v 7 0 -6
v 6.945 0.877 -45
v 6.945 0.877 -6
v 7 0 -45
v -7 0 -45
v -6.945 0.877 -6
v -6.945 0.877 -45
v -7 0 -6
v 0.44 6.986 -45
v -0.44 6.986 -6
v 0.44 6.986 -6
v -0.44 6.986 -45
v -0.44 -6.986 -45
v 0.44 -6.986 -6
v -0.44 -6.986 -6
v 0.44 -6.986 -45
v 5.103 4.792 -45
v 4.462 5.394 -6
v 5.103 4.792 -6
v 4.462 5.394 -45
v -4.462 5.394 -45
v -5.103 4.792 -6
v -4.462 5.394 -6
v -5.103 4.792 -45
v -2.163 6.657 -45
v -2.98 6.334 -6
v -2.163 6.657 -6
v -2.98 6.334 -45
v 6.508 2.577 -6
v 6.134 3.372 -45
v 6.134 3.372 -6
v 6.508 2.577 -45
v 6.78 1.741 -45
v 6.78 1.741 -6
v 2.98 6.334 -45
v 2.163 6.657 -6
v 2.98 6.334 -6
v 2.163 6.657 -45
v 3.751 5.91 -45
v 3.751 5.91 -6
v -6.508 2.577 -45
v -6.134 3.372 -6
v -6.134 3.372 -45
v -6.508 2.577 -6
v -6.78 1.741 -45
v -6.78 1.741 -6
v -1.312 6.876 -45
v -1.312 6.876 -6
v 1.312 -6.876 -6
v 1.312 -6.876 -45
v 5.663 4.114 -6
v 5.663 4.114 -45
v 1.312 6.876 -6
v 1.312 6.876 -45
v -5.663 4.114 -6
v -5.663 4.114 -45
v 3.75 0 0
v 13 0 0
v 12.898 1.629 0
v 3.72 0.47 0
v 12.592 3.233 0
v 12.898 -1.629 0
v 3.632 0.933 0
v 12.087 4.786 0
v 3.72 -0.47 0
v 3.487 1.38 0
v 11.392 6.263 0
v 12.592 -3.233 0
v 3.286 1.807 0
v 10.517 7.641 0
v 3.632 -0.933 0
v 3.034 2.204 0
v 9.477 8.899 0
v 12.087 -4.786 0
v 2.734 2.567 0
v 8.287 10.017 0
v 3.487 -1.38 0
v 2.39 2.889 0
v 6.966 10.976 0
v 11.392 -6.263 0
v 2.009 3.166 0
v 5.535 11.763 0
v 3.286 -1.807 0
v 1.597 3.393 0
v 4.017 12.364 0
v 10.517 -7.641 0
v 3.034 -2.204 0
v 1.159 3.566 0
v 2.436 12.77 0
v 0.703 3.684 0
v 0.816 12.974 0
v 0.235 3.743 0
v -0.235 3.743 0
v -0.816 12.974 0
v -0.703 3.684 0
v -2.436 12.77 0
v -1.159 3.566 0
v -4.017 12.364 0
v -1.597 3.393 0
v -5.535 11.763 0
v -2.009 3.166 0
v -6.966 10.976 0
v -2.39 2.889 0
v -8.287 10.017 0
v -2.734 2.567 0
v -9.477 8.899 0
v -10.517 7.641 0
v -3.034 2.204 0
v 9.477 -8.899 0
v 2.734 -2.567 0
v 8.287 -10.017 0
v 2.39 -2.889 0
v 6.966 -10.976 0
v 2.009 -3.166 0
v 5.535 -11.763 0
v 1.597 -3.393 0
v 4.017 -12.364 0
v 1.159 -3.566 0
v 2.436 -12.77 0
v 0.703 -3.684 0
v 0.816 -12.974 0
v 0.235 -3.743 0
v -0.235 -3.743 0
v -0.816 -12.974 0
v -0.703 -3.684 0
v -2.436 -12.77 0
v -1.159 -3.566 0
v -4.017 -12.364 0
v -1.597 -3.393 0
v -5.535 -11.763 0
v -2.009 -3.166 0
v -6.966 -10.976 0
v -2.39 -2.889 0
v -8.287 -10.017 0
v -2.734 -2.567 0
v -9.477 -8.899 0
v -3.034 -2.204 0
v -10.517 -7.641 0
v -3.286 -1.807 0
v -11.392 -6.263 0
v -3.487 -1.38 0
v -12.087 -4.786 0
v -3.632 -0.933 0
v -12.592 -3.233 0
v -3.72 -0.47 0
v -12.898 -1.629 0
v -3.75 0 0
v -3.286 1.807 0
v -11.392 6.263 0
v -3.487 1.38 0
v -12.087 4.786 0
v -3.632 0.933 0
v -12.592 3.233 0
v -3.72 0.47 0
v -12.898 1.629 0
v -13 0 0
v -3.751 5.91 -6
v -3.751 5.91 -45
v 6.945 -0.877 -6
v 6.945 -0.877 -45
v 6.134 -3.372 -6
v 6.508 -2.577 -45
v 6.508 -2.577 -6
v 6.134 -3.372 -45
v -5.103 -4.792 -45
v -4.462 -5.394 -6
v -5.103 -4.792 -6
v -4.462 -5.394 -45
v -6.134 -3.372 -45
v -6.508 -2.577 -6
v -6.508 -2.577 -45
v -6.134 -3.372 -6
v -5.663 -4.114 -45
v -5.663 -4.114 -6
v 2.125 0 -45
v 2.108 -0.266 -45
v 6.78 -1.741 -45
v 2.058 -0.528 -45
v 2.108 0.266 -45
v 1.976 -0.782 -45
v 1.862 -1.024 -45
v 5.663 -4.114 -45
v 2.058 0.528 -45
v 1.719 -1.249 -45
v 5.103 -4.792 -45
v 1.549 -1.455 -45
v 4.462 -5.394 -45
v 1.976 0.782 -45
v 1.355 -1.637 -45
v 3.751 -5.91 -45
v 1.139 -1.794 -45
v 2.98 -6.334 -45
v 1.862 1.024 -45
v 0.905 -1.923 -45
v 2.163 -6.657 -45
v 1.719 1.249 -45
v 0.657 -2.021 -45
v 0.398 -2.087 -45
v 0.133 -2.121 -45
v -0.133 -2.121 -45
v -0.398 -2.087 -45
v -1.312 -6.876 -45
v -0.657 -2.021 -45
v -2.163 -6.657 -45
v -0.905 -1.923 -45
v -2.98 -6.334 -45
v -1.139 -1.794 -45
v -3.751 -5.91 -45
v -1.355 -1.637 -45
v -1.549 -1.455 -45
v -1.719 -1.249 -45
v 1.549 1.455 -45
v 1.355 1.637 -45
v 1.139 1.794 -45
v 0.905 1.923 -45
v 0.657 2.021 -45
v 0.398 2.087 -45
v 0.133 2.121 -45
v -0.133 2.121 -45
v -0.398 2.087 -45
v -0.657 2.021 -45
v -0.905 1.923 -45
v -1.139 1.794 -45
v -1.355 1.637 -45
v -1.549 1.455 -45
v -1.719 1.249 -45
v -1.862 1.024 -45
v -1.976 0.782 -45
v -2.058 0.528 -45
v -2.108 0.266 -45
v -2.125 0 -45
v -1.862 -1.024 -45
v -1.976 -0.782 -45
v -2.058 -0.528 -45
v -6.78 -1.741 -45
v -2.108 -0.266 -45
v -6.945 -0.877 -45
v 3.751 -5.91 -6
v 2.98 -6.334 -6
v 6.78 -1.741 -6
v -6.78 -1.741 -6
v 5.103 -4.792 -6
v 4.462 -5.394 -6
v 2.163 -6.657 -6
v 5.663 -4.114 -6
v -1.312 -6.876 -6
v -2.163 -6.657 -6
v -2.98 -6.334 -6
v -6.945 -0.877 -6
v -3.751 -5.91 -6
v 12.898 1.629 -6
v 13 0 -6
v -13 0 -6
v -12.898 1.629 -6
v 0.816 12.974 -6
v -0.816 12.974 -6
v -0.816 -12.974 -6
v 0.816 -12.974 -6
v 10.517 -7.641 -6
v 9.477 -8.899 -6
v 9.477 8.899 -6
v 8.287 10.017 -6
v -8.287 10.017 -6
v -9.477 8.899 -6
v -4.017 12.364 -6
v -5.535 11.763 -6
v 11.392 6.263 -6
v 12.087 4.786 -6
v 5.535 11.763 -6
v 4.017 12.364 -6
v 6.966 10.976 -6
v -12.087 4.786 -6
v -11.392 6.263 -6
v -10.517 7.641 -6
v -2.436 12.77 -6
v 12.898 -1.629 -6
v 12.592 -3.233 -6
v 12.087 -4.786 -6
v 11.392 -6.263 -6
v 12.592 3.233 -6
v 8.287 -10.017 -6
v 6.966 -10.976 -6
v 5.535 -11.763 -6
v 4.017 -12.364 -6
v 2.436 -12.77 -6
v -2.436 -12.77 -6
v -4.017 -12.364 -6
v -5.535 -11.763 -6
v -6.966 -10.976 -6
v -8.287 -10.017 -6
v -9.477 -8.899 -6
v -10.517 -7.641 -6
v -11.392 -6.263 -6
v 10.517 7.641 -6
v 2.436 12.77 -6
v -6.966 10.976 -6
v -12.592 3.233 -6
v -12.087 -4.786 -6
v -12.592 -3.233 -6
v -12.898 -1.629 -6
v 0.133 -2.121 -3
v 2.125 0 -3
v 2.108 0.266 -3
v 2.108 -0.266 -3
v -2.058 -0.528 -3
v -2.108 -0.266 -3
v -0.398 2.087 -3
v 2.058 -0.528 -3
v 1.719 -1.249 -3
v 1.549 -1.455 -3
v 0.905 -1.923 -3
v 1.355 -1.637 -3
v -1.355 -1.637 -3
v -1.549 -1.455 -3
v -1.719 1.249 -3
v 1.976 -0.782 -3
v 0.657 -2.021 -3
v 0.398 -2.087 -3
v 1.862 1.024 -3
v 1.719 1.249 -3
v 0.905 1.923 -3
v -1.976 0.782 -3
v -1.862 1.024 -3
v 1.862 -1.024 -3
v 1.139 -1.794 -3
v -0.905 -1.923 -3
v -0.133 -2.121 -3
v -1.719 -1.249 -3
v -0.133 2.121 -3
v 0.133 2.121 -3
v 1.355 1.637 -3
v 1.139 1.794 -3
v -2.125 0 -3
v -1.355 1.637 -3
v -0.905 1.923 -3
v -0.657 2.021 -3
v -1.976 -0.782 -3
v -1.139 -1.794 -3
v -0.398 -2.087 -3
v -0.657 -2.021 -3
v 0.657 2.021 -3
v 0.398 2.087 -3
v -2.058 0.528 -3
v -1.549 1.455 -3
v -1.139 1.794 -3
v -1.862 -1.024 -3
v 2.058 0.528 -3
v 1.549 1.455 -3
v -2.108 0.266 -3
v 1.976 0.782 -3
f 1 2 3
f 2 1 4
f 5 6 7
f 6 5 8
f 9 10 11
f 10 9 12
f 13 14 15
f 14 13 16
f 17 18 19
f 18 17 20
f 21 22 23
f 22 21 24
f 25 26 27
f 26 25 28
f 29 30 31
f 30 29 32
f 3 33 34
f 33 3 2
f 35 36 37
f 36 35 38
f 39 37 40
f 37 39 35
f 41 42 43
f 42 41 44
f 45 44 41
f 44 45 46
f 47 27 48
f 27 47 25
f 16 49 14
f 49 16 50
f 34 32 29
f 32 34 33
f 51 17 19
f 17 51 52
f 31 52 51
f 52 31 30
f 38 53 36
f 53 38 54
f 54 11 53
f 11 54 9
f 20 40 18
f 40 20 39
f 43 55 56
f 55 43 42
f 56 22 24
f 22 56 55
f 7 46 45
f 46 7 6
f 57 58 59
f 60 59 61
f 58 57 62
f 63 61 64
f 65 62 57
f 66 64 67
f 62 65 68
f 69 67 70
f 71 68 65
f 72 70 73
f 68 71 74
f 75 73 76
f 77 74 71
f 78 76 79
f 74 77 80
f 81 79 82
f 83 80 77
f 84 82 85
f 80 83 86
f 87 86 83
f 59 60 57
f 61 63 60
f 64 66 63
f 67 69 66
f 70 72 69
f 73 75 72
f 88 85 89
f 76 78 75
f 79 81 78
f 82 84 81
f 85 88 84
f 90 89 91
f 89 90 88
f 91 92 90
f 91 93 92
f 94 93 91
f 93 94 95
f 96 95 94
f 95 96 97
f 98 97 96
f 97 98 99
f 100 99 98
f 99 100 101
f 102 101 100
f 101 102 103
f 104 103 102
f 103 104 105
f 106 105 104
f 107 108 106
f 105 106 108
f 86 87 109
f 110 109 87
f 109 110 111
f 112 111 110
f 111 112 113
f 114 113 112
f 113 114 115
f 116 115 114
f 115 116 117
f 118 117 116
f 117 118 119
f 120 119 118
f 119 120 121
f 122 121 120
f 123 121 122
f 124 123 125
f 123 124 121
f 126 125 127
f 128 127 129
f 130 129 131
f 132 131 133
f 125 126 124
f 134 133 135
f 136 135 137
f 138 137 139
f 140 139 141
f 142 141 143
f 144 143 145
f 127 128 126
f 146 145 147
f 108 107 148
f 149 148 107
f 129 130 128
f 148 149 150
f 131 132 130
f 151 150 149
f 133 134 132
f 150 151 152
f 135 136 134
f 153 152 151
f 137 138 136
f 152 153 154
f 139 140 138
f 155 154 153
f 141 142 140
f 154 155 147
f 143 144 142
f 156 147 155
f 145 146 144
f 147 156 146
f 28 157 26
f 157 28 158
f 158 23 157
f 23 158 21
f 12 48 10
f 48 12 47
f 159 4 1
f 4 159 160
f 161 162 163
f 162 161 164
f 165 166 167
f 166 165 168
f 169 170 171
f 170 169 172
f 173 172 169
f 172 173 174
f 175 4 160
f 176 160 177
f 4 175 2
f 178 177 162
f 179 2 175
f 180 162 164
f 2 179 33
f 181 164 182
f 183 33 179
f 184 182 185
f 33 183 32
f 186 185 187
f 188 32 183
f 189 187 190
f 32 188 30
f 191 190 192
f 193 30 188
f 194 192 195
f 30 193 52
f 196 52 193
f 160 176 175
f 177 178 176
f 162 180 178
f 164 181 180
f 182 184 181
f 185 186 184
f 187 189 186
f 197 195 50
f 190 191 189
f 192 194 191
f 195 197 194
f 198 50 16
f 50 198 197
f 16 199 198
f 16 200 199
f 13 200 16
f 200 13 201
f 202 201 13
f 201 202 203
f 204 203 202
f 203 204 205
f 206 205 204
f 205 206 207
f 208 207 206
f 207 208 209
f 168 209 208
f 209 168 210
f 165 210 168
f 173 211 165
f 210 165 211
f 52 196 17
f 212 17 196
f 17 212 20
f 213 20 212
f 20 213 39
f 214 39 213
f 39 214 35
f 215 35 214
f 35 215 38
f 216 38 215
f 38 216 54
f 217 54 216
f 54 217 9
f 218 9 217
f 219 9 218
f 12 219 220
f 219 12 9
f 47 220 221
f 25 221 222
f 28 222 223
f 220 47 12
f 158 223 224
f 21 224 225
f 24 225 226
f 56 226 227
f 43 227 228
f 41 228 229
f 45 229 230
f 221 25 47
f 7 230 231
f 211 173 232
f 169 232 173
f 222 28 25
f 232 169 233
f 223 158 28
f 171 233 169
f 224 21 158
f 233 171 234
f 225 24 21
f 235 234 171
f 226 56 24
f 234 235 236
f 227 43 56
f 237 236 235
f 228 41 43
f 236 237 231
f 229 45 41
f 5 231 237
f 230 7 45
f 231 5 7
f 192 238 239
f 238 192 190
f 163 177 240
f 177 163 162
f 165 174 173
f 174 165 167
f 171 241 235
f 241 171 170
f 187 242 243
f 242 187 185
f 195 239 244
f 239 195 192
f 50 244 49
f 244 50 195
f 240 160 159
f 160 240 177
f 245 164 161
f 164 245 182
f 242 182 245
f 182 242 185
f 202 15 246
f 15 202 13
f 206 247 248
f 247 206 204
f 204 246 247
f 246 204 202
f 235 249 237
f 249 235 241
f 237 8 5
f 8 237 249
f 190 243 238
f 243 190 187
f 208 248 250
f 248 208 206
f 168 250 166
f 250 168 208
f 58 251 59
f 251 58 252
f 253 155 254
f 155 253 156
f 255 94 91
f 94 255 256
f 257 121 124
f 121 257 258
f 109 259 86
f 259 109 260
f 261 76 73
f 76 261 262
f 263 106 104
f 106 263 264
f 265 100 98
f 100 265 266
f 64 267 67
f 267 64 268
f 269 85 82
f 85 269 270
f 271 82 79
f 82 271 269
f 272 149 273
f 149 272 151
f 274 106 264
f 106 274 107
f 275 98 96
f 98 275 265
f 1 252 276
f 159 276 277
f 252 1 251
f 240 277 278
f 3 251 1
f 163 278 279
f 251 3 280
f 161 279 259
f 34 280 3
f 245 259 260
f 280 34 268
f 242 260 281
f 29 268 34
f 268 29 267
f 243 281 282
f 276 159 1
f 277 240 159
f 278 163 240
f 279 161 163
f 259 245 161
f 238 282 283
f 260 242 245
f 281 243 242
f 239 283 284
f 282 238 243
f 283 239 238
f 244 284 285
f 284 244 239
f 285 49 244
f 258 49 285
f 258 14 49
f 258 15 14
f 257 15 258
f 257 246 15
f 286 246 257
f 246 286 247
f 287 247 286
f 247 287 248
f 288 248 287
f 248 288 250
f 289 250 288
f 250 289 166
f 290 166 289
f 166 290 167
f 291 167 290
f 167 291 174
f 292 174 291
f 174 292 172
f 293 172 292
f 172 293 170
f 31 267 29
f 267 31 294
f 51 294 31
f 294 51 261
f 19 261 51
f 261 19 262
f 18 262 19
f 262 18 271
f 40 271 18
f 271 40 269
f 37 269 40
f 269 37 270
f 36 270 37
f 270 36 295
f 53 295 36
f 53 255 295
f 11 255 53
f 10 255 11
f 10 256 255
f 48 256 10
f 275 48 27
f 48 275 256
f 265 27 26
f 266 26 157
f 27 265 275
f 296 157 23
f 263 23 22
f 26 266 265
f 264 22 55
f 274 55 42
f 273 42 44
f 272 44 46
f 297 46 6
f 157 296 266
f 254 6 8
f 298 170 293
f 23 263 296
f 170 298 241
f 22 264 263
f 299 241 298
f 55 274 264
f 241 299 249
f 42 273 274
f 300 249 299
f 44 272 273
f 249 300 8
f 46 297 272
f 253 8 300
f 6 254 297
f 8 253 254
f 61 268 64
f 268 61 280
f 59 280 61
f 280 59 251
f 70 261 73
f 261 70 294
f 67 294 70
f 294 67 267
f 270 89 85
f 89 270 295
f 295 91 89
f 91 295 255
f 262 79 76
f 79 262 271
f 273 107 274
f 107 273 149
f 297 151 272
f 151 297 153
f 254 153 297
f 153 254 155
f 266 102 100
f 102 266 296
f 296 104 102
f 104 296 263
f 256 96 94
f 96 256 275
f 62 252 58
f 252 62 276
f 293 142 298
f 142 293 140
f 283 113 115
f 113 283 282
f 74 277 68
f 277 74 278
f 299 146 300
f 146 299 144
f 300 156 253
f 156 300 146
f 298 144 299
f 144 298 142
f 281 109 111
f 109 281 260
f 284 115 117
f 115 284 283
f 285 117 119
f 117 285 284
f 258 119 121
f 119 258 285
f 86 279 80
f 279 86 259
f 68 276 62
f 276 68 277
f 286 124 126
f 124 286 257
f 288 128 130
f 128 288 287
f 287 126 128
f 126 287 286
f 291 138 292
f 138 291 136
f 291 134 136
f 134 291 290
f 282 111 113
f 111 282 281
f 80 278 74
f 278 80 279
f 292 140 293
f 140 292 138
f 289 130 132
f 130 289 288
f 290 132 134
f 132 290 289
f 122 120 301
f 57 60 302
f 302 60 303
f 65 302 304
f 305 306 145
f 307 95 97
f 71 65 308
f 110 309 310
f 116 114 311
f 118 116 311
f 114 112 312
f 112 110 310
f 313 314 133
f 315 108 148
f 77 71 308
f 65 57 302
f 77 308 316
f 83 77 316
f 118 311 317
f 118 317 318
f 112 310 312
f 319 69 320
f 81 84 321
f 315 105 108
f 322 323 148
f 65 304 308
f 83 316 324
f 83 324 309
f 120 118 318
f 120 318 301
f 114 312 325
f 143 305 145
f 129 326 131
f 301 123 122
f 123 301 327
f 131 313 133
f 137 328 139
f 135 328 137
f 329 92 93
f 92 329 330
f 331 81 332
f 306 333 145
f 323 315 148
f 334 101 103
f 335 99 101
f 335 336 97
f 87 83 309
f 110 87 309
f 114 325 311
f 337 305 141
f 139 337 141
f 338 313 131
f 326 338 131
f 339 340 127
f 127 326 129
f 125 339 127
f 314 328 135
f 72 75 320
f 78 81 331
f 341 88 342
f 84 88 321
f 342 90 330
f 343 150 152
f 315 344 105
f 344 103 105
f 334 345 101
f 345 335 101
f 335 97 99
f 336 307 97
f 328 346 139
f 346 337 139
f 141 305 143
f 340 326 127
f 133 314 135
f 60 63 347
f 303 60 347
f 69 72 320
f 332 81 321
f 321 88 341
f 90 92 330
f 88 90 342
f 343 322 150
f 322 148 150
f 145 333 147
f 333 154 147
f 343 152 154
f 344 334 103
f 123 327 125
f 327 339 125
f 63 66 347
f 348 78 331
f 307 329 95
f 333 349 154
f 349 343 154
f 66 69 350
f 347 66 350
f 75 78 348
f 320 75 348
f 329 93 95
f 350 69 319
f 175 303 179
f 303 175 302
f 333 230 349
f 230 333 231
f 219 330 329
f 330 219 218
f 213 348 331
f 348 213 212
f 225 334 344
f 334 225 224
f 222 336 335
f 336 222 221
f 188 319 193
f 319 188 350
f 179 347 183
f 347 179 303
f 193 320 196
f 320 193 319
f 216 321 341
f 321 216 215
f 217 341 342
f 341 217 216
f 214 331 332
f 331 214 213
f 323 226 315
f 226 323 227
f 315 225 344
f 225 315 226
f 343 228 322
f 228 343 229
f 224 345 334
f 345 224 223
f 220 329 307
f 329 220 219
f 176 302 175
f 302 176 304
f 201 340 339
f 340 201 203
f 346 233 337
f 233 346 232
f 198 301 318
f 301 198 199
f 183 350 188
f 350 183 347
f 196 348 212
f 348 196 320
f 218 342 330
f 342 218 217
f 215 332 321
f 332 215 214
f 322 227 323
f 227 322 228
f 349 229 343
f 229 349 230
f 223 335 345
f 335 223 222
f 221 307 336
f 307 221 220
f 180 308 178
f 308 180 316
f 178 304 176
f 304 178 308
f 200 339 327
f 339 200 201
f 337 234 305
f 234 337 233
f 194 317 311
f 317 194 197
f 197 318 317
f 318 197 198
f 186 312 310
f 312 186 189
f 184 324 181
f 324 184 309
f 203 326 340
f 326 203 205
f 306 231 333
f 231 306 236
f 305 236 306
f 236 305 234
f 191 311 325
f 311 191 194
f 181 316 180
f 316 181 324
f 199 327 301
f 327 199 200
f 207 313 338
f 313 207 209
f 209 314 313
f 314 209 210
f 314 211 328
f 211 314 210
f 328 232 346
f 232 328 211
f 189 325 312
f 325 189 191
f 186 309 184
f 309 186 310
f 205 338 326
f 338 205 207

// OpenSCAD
$fn = 50;


difference() {
	union() {
		translate(v = [0, 0, -45.0000000000]) {
			cylinder(h = 45, r = 7.0000000000);
		}
		translate(v = [0, 0, -6.0000000000]) {
			cylinder(h = 6, r = 13.0000000000);
		}
	}
	union() {
		translate(v = [0, 0, 0]) {
			rotate(a = [0, 0, 0]) {
				difference() {
					union() {
						#translate(v = [0, 0, -45.0000000000]) {
							cylinder(h = 45, r = 2.0000000000);
						}
						#translate(v = [0, 0, -3]) {
							cylinder(h = 3, r = 7.0000000000, r1 = 2.1250000000, r2 = 3.7500000000);
						}
						#translate(v = [0, 0, -45.0000000000]) {
							cylinder(h = 45, r = 2.1250000000);
						}
						#translate(v = [0, 0, -45.0000000000]) {
							cylinder(h = 45, r = 2.0000000000);
						}
					}
					union();
				}
			}
		}
	}
}
